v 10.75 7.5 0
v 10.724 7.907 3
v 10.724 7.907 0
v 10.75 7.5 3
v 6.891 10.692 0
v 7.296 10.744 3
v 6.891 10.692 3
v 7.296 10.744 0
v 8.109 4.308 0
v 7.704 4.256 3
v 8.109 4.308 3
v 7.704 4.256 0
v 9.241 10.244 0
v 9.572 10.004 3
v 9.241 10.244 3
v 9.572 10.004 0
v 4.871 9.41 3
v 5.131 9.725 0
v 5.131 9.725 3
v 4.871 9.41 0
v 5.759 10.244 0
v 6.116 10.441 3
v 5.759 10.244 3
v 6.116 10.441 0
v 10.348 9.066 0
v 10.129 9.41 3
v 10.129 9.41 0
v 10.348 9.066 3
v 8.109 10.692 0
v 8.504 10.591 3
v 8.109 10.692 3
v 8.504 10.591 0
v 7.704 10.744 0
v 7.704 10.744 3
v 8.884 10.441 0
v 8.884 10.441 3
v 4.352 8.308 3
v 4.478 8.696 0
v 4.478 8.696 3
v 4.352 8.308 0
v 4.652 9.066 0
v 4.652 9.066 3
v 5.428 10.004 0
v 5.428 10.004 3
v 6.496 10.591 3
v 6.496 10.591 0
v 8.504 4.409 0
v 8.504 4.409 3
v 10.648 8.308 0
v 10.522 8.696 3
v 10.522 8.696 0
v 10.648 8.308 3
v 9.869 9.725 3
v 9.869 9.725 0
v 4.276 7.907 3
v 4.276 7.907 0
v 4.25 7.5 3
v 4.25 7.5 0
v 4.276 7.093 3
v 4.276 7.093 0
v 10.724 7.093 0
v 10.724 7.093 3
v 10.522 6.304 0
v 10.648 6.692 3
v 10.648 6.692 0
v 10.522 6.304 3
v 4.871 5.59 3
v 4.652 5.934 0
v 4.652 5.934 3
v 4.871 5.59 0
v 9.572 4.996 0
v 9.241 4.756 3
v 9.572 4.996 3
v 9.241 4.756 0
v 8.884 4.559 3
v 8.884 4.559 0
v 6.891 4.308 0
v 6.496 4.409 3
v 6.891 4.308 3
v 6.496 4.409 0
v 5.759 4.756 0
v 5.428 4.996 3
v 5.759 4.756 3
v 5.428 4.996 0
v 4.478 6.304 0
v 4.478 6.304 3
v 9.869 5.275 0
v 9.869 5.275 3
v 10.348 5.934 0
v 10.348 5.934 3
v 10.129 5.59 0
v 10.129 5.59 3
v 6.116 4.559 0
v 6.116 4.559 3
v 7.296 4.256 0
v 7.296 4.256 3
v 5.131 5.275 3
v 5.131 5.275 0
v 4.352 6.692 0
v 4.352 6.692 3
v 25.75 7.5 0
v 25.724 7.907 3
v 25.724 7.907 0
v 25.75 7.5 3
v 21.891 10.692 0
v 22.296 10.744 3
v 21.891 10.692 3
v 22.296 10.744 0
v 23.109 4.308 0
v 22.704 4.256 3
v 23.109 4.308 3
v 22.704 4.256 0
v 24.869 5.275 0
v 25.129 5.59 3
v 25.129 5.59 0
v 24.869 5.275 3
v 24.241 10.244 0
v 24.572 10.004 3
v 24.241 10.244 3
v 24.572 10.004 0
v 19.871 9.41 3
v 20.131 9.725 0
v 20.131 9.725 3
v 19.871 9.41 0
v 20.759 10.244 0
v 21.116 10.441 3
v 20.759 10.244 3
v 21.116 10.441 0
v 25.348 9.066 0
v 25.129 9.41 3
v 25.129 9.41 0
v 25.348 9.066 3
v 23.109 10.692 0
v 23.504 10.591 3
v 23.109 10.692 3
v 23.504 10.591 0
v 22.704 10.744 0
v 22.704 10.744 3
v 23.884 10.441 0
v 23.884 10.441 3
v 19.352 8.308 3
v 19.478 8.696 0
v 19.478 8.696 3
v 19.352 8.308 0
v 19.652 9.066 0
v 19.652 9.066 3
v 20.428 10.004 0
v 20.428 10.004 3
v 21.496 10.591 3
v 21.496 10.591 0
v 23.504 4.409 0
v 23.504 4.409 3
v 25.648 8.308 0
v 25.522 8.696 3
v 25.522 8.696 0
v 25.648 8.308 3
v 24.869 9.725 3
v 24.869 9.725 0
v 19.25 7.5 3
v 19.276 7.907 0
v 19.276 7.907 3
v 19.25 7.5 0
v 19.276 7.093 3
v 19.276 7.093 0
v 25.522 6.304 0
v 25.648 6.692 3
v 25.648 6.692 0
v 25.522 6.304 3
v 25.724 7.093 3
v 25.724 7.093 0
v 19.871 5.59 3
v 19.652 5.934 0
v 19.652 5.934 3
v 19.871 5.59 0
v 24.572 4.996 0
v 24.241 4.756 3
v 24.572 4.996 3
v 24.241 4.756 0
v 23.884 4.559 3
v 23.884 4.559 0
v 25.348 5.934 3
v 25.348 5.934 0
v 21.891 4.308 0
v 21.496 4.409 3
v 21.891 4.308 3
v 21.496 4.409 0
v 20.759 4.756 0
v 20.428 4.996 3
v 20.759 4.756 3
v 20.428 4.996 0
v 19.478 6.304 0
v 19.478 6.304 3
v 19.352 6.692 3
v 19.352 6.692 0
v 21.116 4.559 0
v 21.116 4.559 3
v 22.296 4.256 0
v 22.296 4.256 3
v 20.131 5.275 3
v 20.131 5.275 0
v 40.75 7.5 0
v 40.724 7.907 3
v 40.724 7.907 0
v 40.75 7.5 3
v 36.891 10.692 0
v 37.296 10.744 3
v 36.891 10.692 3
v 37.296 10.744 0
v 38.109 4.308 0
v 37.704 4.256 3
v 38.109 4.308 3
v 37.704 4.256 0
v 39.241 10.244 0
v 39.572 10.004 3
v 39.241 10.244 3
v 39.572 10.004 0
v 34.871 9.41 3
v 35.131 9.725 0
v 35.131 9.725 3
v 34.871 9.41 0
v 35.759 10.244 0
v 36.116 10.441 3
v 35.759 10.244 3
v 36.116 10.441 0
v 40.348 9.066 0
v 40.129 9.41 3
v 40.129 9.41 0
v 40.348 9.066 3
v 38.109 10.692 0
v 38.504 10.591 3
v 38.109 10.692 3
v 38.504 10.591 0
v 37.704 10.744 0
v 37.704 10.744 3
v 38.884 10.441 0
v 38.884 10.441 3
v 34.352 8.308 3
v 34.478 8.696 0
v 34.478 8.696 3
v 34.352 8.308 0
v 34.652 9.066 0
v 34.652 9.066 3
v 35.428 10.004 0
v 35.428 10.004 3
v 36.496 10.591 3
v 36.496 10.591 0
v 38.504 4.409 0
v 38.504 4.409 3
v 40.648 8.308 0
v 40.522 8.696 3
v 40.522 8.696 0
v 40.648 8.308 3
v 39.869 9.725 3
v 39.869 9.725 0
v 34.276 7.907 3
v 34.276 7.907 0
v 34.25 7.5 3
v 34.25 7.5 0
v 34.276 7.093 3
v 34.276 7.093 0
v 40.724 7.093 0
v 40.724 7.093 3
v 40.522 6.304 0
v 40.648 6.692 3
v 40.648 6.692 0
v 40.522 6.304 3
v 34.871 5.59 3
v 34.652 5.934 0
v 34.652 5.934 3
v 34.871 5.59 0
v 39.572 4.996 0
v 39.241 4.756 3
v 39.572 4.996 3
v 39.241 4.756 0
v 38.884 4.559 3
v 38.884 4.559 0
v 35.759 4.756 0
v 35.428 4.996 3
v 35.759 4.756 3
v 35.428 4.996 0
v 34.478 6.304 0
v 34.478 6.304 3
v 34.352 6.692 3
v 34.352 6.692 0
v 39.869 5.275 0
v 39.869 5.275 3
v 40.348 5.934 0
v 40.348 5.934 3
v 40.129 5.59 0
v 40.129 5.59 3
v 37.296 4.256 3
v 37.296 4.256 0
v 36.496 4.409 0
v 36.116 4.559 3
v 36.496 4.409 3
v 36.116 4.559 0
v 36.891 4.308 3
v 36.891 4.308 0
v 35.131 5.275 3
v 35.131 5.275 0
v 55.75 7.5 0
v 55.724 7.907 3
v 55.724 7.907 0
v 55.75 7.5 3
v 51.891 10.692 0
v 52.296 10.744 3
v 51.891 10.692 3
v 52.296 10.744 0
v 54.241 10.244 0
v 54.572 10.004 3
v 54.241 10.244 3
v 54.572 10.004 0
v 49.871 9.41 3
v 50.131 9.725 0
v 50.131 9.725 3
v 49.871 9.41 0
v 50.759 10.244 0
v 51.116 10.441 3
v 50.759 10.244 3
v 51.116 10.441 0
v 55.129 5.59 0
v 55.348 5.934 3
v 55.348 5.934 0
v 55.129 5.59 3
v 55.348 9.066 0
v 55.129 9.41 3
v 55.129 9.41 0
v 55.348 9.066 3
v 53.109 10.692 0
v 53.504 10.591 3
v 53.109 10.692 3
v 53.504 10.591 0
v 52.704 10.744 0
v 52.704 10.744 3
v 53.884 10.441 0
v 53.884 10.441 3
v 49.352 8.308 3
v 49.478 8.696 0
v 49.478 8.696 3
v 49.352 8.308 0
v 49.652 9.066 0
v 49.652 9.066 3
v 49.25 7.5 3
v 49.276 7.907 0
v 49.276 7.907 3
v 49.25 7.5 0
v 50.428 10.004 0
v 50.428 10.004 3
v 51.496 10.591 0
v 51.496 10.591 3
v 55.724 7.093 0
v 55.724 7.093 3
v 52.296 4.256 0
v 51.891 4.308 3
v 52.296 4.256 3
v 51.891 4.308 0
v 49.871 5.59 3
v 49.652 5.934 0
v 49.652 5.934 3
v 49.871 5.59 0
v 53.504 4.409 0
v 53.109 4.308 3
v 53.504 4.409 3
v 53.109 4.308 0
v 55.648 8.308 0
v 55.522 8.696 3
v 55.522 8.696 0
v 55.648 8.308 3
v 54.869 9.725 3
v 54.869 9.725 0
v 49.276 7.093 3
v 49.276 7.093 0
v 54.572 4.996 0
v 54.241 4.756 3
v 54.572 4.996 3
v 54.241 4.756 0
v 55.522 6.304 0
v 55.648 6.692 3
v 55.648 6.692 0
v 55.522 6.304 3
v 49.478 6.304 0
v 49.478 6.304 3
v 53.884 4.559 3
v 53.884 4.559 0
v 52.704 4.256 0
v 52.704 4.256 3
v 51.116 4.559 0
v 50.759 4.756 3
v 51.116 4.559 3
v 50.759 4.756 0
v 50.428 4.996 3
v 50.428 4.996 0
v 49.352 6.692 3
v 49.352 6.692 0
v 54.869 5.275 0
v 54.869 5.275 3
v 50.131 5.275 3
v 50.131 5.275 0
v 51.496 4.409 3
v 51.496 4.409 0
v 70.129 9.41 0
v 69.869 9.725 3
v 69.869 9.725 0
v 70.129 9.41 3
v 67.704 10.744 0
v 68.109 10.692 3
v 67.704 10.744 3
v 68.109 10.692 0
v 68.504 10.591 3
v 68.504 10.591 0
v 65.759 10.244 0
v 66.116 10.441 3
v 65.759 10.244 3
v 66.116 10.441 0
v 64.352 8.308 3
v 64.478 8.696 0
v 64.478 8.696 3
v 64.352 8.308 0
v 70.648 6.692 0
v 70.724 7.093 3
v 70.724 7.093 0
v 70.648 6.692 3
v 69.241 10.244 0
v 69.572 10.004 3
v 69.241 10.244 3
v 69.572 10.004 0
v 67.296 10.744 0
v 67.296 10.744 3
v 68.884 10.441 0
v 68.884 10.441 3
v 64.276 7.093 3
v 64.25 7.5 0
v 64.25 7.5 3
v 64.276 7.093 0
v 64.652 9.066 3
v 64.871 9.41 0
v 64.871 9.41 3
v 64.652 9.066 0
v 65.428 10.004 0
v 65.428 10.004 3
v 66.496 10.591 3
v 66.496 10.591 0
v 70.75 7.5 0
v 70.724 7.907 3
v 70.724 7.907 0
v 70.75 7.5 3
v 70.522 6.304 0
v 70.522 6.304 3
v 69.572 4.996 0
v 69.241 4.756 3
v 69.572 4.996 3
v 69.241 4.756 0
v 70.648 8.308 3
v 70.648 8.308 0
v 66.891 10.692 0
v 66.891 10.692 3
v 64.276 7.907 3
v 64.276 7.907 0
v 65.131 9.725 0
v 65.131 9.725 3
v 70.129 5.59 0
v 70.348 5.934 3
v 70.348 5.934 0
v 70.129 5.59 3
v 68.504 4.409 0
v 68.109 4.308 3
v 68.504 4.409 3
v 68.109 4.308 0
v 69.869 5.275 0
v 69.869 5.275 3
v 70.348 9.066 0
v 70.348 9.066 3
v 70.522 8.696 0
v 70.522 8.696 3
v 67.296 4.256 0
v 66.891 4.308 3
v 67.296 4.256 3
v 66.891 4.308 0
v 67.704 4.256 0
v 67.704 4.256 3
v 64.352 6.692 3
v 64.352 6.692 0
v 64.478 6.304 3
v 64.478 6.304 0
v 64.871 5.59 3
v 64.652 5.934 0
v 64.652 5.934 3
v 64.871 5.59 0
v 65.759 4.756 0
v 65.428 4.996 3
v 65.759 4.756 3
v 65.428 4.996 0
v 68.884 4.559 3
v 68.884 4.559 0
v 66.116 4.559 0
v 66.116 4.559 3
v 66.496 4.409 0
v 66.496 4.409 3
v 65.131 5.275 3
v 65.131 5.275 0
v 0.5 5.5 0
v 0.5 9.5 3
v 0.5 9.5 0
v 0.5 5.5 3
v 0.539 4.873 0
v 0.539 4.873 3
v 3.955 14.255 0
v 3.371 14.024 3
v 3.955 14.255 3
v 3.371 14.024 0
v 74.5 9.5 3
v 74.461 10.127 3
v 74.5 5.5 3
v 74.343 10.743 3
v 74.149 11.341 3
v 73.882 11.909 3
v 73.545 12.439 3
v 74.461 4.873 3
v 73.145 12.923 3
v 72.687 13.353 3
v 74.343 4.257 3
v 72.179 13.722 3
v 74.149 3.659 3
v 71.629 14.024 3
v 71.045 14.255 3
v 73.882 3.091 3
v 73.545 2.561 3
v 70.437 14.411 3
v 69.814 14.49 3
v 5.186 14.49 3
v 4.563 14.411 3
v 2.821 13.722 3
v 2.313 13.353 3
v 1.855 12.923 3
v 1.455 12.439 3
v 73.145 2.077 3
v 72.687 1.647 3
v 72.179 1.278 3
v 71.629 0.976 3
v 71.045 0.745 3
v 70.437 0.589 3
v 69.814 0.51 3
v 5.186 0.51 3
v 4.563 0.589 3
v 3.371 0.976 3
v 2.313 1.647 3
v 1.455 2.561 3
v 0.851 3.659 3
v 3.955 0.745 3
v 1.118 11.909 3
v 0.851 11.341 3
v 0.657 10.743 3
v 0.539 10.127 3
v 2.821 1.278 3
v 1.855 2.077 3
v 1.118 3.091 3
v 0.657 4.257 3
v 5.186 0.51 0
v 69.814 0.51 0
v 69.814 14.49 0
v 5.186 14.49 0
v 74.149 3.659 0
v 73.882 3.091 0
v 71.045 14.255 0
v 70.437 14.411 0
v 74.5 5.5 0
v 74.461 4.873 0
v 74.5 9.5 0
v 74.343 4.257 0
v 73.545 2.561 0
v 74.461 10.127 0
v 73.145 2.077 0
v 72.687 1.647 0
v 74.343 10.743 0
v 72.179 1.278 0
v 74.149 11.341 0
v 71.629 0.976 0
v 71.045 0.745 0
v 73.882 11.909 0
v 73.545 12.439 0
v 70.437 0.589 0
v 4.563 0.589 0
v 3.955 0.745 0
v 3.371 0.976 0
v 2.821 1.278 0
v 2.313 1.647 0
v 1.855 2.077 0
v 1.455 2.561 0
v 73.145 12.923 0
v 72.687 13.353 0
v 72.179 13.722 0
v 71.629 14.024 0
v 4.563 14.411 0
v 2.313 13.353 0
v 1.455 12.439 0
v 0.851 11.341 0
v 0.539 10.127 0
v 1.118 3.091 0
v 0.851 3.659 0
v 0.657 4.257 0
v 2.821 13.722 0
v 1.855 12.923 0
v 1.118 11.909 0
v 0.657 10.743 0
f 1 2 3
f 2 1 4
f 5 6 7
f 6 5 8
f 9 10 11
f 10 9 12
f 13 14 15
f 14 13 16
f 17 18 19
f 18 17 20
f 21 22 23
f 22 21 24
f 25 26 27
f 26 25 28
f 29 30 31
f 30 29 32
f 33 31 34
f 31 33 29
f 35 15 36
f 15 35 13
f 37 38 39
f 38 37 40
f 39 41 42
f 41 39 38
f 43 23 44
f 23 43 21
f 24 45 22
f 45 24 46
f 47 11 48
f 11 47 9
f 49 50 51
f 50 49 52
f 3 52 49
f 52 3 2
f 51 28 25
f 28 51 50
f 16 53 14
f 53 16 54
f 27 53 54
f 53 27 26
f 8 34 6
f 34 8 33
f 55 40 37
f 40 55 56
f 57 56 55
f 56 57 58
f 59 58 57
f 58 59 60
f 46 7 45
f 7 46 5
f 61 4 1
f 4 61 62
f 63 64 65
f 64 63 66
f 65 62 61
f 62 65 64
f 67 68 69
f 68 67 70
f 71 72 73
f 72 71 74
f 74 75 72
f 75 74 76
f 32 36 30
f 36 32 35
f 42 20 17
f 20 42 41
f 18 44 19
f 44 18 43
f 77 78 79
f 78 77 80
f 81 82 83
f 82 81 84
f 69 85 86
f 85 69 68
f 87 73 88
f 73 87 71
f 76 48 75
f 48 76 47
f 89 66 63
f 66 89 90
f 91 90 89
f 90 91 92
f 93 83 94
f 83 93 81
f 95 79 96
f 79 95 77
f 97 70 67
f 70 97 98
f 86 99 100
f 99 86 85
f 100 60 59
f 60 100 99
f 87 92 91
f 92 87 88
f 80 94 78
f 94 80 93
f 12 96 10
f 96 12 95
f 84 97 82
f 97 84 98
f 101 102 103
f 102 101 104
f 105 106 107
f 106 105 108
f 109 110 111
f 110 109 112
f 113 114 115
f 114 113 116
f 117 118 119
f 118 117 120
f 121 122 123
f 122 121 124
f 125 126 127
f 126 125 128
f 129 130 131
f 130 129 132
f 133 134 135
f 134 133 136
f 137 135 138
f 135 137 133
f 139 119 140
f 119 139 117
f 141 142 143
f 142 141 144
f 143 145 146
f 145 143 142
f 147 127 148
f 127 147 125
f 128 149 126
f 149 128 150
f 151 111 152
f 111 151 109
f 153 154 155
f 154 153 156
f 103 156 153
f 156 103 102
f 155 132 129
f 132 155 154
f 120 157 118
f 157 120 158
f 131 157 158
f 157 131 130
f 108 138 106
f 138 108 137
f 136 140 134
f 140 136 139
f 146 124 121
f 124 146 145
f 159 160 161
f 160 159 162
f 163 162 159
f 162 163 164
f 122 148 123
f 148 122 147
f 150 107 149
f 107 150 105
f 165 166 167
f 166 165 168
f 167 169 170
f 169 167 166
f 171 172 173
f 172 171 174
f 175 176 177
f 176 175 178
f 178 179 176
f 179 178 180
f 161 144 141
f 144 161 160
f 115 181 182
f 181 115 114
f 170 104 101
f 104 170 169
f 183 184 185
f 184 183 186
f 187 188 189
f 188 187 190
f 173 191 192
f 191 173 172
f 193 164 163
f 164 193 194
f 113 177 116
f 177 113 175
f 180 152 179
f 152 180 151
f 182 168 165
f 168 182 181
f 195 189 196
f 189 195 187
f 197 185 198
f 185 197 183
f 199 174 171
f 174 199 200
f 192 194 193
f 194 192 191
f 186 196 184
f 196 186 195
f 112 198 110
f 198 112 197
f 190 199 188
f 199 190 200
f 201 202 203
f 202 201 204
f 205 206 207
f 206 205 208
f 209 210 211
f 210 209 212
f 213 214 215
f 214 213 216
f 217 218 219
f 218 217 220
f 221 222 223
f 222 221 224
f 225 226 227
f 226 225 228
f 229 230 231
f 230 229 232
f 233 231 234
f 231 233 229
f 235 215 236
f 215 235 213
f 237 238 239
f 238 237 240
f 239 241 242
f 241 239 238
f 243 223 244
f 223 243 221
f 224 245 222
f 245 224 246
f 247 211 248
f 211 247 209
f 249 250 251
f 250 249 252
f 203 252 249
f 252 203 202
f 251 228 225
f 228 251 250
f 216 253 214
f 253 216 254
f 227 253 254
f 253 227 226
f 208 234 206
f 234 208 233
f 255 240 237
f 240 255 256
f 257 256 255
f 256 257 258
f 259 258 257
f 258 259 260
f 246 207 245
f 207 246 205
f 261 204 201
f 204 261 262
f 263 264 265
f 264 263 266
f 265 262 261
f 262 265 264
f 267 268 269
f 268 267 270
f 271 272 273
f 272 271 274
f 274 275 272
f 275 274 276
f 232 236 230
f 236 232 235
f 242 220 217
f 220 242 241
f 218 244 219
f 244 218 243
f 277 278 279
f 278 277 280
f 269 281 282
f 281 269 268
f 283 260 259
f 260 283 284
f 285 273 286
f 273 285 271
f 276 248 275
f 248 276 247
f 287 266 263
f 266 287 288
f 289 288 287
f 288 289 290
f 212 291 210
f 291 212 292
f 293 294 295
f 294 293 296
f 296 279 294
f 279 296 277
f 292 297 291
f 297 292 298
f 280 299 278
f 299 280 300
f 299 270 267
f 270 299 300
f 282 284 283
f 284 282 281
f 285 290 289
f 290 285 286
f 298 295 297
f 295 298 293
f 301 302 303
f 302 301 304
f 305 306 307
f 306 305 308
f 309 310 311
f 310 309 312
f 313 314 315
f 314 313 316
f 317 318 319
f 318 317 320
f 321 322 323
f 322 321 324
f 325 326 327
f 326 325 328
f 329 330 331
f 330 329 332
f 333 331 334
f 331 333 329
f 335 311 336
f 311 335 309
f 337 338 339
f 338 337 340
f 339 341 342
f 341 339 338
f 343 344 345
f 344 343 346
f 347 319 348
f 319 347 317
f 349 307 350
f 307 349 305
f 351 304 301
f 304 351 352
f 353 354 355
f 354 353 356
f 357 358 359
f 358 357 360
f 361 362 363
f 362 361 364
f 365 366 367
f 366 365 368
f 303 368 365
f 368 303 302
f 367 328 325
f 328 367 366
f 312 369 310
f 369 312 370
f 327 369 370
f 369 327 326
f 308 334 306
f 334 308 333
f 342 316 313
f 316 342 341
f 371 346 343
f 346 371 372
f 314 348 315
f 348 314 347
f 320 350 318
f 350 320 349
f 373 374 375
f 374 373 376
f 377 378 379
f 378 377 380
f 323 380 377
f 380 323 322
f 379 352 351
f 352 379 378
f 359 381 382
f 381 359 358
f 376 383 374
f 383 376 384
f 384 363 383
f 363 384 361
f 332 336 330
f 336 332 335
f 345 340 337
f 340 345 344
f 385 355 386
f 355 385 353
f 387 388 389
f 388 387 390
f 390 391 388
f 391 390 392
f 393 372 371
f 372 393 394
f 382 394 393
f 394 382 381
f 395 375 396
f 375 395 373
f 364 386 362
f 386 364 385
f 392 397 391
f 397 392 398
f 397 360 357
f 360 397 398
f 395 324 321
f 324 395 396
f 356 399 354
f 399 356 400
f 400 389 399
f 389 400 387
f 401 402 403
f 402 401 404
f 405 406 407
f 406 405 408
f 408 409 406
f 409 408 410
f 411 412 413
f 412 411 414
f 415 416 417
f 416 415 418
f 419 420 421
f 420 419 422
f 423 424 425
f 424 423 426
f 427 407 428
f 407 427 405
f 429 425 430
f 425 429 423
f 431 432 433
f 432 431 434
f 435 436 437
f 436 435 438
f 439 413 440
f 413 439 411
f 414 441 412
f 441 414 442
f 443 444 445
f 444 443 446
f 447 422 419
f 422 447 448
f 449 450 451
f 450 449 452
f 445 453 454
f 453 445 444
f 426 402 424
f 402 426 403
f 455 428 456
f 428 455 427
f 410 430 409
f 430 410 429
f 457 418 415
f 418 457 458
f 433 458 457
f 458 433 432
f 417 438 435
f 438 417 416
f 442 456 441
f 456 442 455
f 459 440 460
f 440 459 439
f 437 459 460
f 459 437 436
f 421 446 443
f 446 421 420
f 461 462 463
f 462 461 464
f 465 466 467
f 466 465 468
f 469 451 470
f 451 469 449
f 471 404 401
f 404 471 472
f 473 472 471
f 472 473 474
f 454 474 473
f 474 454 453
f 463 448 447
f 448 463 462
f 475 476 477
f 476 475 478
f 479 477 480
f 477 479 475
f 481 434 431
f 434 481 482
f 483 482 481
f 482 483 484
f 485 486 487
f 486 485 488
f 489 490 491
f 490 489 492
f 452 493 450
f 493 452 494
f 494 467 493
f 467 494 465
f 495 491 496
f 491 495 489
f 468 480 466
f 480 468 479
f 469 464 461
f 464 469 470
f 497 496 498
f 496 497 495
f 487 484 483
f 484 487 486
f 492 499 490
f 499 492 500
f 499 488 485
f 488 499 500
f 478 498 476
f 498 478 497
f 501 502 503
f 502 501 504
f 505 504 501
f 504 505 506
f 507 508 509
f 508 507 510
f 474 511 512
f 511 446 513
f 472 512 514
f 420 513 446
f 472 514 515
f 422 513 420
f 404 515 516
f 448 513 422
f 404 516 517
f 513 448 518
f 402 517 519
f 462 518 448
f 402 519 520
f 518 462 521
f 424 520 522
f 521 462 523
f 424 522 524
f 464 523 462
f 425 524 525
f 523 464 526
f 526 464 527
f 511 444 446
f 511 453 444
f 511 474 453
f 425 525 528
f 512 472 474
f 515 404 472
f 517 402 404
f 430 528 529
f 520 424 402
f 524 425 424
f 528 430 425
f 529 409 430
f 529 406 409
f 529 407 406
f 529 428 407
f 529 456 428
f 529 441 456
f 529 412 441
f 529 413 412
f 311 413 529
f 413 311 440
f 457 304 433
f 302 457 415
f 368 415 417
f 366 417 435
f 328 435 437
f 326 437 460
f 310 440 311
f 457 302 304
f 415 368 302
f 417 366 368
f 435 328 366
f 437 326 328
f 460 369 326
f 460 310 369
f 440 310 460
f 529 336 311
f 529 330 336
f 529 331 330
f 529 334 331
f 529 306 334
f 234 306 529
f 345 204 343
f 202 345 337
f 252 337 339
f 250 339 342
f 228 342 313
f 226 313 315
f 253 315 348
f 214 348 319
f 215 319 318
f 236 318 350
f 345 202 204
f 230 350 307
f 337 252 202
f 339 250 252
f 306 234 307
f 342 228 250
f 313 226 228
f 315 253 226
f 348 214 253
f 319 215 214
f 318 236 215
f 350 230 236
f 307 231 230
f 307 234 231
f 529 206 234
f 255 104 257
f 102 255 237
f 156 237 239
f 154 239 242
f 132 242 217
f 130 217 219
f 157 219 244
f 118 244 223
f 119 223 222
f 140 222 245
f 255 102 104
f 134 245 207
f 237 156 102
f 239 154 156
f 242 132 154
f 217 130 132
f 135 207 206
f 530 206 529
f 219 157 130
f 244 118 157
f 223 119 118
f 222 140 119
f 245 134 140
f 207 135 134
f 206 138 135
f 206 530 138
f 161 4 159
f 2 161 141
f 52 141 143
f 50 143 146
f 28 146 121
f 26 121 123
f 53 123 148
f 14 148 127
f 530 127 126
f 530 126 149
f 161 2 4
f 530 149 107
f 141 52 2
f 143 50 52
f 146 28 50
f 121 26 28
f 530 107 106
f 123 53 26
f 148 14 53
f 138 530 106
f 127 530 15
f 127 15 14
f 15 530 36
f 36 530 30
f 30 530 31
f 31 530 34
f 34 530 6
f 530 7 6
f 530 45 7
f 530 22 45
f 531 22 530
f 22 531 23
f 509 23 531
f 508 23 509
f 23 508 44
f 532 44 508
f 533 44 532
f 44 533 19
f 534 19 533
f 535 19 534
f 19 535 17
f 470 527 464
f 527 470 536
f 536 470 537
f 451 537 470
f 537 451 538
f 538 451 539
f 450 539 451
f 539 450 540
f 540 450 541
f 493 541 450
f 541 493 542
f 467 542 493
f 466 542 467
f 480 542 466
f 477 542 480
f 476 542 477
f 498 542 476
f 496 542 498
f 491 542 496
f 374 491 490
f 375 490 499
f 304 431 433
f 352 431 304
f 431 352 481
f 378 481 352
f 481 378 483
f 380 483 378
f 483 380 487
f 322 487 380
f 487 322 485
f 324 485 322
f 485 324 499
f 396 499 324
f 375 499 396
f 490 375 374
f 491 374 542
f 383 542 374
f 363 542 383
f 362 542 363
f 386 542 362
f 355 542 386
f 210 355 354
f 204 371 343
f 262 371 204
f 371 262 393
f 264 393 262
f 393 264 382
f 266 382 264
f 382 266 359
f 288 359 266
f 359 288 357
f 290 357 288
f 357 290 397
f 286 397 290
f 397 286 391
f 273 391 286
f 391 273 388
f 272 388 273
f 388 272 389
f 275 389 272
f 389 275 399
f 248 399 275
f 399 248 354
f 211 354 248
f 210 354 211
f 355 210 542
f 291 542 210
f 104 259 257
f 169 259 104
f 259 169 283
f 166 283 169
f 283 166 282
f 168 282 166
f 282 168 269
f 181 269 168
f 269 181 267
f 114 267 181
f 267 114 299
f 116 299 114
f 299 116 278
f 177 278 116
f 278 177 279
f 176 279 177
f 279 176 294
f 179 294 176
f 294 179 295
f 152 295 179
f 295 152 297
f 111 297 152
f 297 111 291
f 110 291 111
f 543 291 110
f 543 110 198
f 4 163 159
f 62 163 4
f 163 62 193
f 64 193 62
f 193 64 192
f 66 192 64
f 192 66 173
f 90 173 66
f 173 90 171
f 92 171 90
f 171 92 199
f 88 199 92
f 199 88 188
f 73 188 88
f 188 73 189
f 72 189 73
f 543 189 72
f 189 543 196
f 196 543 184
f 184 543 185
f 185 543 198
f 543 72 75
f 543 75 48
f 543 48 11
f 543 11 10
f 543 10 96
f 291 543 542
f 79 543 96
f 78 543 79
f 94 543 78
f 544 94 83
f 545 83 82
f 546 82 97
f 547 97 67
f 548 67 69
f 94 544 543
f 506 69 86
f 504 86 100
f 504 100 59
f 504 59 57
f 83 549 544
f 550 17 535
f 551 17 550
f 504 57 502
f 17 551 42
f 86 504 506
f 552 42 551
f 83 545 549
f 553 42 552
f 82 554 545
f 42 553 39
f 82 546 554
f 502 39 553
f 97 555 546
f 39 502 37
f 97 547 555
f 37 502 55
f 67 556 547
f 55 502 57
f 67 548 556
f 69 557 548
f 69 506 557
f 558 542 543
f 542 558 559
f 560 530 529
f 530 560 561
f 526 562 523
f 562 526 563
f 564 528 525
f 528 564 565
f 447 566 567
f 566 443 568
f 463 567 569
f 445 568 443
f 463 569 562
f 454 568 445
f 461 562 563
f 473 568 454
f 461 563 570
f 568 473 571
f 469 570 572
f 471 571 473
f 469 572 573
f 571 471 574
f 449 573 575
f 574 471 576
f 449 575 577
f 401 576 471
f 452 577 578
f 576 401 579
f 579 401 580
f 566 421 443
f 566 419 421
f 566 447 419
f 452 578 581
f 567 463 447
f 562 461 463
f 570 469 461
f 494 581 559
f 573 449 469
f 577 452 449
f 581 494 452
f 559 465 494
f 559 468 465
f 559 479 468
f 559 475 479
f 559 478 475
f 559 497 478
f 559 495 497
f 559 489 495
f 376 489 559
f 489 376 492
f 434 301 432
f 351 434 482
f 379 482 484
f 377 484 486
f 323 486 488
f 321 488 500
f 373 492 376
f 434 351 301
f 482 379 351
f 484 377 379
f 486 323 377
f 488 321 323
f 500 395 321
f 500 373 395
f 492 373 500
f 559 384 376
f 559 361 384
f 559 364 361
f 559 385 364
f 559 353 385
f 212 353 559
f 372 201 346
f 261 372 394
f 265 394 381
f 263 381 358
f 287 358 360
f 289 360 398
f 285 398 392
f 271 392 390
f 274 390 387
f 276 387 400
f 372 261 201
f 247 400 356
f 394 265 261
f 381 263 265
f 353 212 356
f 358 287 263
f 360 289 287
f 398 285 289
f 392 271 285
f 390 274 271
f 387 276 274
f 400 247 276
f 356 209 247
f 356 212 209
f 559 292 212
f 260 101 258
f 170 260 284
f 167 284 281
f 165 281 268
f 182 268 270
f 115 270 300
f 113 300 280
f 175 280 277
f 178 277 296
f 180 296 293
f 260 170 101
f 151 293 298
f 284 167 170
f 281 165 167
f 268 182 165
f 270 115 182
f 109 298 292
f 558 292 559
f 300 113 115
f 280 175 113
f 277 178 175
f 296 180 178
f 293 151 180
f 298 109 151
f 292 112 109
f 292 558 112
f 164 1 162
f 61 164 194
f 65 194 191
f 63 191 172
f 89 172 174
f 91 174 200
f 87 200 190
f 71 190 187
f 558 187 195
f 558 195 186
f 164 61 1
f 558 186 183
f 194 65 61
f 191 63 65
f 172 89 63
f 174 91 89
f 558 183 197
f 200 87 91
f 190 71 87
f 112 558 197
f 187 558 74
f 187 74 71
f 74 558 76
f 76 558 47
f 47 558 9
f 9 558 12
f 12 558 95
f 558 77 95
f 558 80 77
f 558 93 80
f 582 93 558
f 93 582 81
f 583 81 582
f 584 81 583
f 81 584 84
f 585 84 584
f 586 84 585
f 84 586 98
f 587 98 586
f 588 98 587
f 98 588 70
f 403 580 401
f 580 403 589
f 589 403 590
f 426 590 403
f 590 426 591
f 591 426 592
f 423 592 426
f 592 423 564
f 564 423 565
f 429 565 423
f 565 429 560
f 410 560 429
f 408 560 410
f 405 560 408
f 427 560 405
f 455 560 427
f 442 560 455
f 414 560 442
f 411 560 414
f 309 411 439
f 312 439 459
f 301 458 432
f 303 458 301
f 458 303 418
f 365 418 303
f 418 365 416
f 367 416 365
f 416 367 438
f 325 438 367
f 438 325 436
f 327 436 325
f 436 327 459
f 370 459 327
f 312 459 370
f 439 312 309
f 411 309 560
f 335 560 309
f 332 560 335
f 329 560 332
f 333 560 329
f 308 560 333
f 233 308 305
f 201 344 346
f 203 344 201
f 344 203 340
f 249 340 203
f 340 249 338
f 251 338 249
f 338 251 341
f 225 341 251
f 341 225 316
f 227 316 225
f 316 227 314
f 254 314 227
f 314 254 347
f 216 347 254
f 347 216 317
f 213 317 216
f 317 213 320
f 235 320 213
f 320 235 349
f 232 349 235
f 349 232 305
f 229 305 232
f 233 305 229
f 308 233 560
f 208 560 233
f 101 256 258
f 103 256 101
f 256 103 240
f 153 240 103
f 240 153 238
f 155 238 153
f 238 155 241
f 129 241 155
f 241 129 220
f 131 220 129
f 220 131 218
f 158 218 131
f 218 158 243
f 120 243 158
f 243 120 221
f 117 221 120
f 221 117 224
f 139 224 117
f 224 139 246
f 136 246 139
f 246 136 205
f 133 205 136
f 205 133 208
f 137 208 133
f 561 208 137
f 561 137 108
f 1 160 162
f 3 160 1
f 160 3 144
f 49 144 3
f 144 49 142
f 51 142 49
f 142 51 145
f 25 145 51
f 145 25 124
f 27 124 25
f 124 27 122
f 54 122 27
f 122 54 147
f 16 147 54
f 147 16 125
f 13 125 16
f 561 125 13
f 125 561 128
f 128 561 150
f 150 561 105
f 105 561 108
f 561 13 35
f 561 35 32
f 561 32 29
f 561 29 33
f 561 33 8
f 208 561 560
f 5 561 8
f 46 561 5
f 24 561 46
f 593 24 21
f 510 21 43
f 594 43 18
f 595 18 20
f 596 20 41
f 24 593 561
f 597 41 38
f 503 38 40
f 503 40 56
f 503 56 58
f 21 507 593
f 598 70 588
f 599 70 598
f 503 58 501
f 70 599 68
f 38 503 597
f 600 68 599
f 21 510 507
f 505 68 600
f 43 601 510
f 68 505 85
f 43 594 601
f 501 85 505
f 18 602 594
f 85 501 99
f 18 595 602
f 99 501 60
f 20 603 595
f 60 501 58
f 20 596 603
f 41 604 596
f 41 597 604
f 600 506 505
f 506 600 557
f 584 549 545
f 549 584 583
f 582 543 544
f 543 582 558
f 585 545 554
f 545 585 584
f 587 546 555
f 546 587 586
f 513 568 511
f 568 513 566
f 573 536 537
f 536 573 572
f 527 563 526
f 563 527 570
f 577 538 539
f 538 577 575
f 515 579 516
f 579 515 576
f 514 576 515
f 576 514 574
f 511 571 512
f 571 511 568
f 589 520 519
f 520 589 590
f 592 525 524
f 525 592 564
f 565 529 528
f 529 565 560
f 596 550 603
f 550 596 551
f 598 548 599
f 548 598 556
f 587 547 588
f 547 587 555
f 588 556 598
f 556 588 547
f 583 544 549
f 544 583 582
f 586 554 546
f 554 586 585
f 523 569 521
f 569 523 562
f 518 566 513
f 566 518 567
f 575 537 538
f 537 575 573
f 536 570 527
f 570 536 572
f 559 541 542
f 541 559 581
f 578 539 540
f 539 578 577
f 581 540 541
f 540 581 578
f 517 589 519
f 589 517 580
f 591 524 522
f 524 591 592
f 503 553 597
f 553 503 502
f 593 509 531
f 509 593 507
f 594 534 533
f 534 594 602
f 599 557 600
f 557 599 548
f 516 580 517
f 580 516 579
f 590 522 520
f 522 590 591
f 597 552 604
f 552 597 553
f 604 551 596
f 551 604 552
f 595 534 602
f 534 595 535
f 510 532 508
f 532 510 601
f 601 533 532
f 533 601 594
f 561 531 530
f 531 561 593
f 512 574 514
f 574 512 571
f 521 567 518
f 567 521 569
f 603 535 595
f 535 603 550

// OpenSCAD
// Generated by SolidPython 1.1.3 on 2023-01-09 15:00:51
$fn = 50;


difference() {
	union() {
		translate(v = [37.5000000000, 7.5000000000, 0]) {
			rotate(a = [0, 0, 0]) {
				hull() {
					translate(v = [-32.0000000000, 2.0000000000, 0]) {
						rotate(a = [0, 0, 0]) {
							translate(v = [0, 0, 0]) {
								rotate(a = [0, 0, 0]) {
									cylinder(h = 3, r = 5);
								}
							}
						}
					}
					translate(v = [32.0000000000, 2.0000000000, 0]) {
						rotate(a = [0, 0, 0]) {
							translate(v = [0, 0, 0]) {
								rotate(a = [0, 0, 0]) {
									cylinder(h = 3, r = 5);
								}
							}
						}
					}
					translate(v = [-32.0000000000, -2.0000000000, 0]) {
						rotate(a = [0, 0, 0]) {
							translate(v = [0, 0, 0]) {
								rotate(a = [0, 0, 0]) {
									cylinder(h = 3, r = 5);
								}
							}
						}
					}
					translate(v = [32.0000000000, -2.0000000000, 0]) {
						rotate(a = [0, 0, 0]) {
							translate(v = [0, 0, 0]) {
								rotate(a = [0, 0, 0]) {
									cylinder(h = 3, r = 5);
								}
							}
						}
					}
				}
			}
		}
	}
	union() {
		translate(v = [7.5000000000, 7.5000000000, 0]) {
			rotate(a = [0, 0, 0]) {
				translate(v = [0, 0, -50]) {
					rotate(a = [0, 0, 0]) {
						cylinder(h = 100, r = 3.2500000000);
					}
				}
			}
		}
		translate(v = [22.5000000000, 7.5000000000, 0]) {
			rotate(a = [0, 0, 0]) {
				translate(v = [0, 0, -50]) {
					rotate(a = [0, 0, 0]) {
						cylinder(h = 100, r = 3.2500000000);
					}
				}
			}
		}
		translate(v = [37.5000000000, 7.5000000000, 0]) {
			rotate(a = [0, 0, 0]) {
				translate(v = [0, 0, -50]) {
					rotate(a = [0, 0, 0]) {
						cylinder(h = 100, r = 3.2500000000);
					}
				}
			}
		}
		translate(v = [52.5000000000, 7.5000000000, 0]) {
			rotate(a = [0, 0, 0]) {
				translate(v = [0, 0, -50]) {
					rotate(a = [0, 0, 0]) {
						cylinder(h = 100, r = 3.2500000000);
					}
				}
			}
		}
		translate(v = [67.5000000000, 7.5000000000, 0]) {
			rotate(a = [0, 0, 0]) {
				translate(v = [0, 0, -50]) {
					rotate(a = [0, 0, 0]) {
						cylinder(h = 100, r = 3.2500000000);
					}
				}
			}
		}
	}
}
/***********************************************
*********      SolidPython code:      **********
************************************************
 
from solid import *
import os
import subprocess

import oomB

import opsc_library_gen

mode = "laser"
#mode = "3d_print"

defined_objects = {}

radius_dict = {}
countersunk_dict = {}


def set_mode(m):
    global mode
    mode = m
    radius_dict['M6'] = 6.5/2
    radius_dict['M3'] = 3.3/2
    if mode == "laser":
        radius_dict['M6'] = 6/2
        radius_dict['M3'] = 3/2

    countersunk_dict['M3'] = {}
    countersunk_dict['M3']['little_rad'] = radius_dict['M3']
    countersunk_dict['M3']['big_rad'] = (5.5+0.6)/2
    if mode == "laser":
        countersunk_dict['M3']['big_rad'] = (4.75+0.6)/2
        countersunk_dict['M3']['little_rad'] = (4.75+0.6)/2

    countersunk_dict['M3']['height'] = 1.7


def opsc_make_object(filename, objects, save_type="none",resolution=50, layers = 1, tilediff = 200, mode="laser"):
    set_mode(mode)
    save_type = save_type.lower()
    os.makedirs(os.path.dirname(filename), exist_ok=True)
    final_object = opsc_get_object(objects)
    # Save the final object to the specified filename    
    scad_render_to_file(final_object, filename, file_header='$fn = %s;' % resolution, include_orig_code=True)
    if mode == "laser":
        filename_laser = filename.replace(".scad","-flat.scad")
        scad_render_to_file(getLaser(final_object, layers=layers, tilediff=tilediff), filename_laser, file_header='$fn = %s;' % resolution, include_orig_code=True)
        if save_type == "all":
            saveToAll(filename_laser)
        elif save_type == "dxf":
            saveToDxf(filename_laser)
    if save_type == "all":
        saveToAll(filename)
    elif save_type == "dxf":
        saveToDxf(filename)


def opsc_get_object(objects):
    # Create the solidpython objects
    positive_objects = [get_opsc_item(obj) for obj in objects if obj['type'] == 'positive']
    negative_objects = [get_opsc_item(obj) for obj in objects if obj['type'] == 'negative']
    # Union the positive objects
    positive_object = union()(*positive_objects)
    # Union the negative objects
    negative_object = union()(*negative_objects)
    # Create the final object by subtracting the negative objects from the positive objects
    return difference()(positive_object, negative_object)

def get_opsc_item(params):
    # A dictionary to map radius string values to numerical values
    #radius_dict = {'small': 5, 'medium': 10, 'large': 15}
    # An array of function names for basic shapes
    basic_shapes = ['cube', 'sphere', 'cylinder']
    
    # An array of function names for other shapes
    other_shapes = ['hole', 'slot', 'rounded_rectangle', 'countersunk']
    


    # Convert radius to r if present, and remove radius from the params dictionary
    if 'radius' in params:
        if isinstance(params['radius'], str):
            # Use the radius_dict to map the radius string value to a numerical value
            params['r'] = radius_dict[params['radius']]
        else:
            params['r'] = params['radius']
        del params['radius']
    

    # Check if the object type is a basic shape
    if params['shape'] in basic_shapes:
        # Remove shape and unexpected dictionary values
        allowed_keys = {'size', 'r', 'r1', 'r2', 'd', 'h', 'rw', 'rh', 'dw', 'dh'}
        shape_params = {k: v for k, v in params.items() if k in allowed_keys}

        # Call the corresponding function for the shape parameter, using ** notation to pass the shape_params dictionary as keyword arguments
        return get_opsc_transform(params,globals()[params['shape']](**shape_params))
    
    # If the object type is not a basic shape, check if it's a defined object or one of the other shapes
    elif params['shape'] in other_shapes:
        # Call the corresponding function for the shape parameter, passing the params dictionary as an argument
        p2 = copy.deepcopy(params)
        p2["pos"] = [0,0,0]
        return get_opsc_transform(params,globals()[params['shape']](p2))
    
    # If the object is not a basic shape or a defined object, try to import it from a .scad file
    else:
        obj = defined_objects[params['shape']]
        return get_opsc_transform(params,obj)

def get_opsc_transform(params, solid_obj):
    # Rotate the object based on the 'rot' field in the params dictionary, or the 'rotX', 'rotY', and 'rotZ' fields if 'rot' is not present
    rot = params.get('rot', [])
    if rot:
        rotX, rotY, rotZ = rot
    else:
        rotX = params.get('rotX', 0)
        rotY = params.get('rotY', 0)
        rotZ = params.get('rotZ', 0)
    solid_obj = rotate([rotX, rotY, rotZ])(solid_obj)

    # Translate the object based on the 'pos' field in the params dictionary, or the 'x', 'y', and 'z' fields if 'pos' is not present
    pos = params.get('pos', [])
    if pos:
        x, y, z = pos
    else:
        x = params.get('x', 0)
        y = params.get('y', 0)
        z = params.get('z', 0)
    solid_obj = translate([x, y, z])(solid_obj)
    return solid_obj


import random

def opsc_easy_array(type, shape, repeats, pos_start, shift_arr, **kwargs):
    for i in range(0,3):
        repeats.append(1)
        pos_start.append(0)
        shift_arr.append(0)
    return_objects = []

    for x in range(0,repeats[0]):
        for y in range(0,repeats[1]):
            for z in range(0,repeats[2]):
                return_objects.append(opsc_easy(type, shape, pos=[pos_start[0]+x*shift_arr[0],pos_start[1]+y*shift_arr[1],pos_start[2]+z*shift_arr[2]], **kwargs))
    return return_objects                



def opsc_easy(type, shape, **kwargs):
    obj = {
        'type': type,
        'shape': shape
    }
    for param in ['size', 'r', 'r1', 'r2', 'd', 'h', 'rw', 'rh', 'dw', 'dh', 'pos', 'x', 'y', 'z', 'rot', 'rotX', 'rotY', 'rotZ', "w"]:
        if param in kwargs:
            obj[param] = kwargs[param]
    return obj

def hole(params):
    p2 = copy.deepcopy(params)  
    # Check if the radius is a string and replace it with the corresponding value from the dictionary
    if isinstance(p2['r'], str):
        p2['r'] = radius_dict[p2['r']]
    
    # Set the height to 100 if not specified
    if 'h' not in p2:
        p2['h'] = 100
        p2["pos"] = [0,0,-50]
    p2["center"] = True
    # Create the cylinder object
    p2["shape"] = "cylinder"
    p2["type"] = "positive"

    return get_opsc_item(p2)

import copy

def countersunk(params):
    p2 = copy.deepcopy(params)
    counter_rad = p2['r']
    p2['r'] = radius_dict[p2['r']]
    hp = copy.deepcopy(p2)
    hp["type"] = "positive"
    hp["shape"] = "hole"
    del hp["rot"]
    hol = get_opsc_item(hp)
    
    cp = copy.deepcopy(p2)
    cp["h"] = countersunk_dict[counter_rad]["height"]
    cp["r2"] = countersunk_dict[counter_rad]["little_rad"]
    cp["r1"] = countersunk_dict[counter_rad]["big_rad"]
    del cp["r"]
    del cp["rot"]
    cp["type"] = "positive"
    cp["shape"] = "cylinder"
    cp["pos"] = [0,0,0]

    top = get_opsc_item(cp)
    return union()(hol,top)



def slot(params):  
    p2 = copy.deepcopy(params) 
    if isinstance(p2['r'], str):
        p2['r'] = radius_dict[p2['r']]
    p2["type"] = "positive"
    p2["shape"] = "hole"
    del p2["rot"]
    p2["pos"] = [0,0,0]
    left = copy.deepcopy(p2)
    right = copy.deepcopy(p2)
    left["pos"][0] = p2["w"] / 2 - p2["r"] 
    
    right["pos"][0] = -p2["w"] / 2 + p2["r"] 
    pass
    leftObj = get_opsc_item(left)
    rightObj = get_opsc_item(right)
    return hull()(leftObj, rightObj)

def rounded_rectangle(params):   
    p2 = copy.deepcopy(params) 
    p2["h"] = p2["size"][2]
    p2["pos"] = p2.get("pos", [0, 0, 0]) 
    p2["type"] = "positive"
    p2["shape"] = "hole"
    p2["pos"] = [0,0,0]
    
    if 'rot' in p2:
        del p2["rot"]   
    if 'r' not in p2:
        p2["r"] = 5 
    tl = copy.deepcopy(p2)
    tr = copy.deepcopy(p2)
    bl = copy.deepcopy(p2)
    br = copy.deepcopy(p2)
    tl["pos"][0] = -(p2["size"][0] - p2["r"]*2)/2
    tl["pos"][1] = (p2["size"][1] - p2["r"]*2)/2
    tr["pos"][0] = (p2["size"][0] - p2["r"]*2)/2
    tr["pos"][1] = (p2["size"][1] - p2["r"]*2)/2
    bl["pos"][0] = -(p2["size"][0] - p2["r"]*2)/2
    bl["pos"][1] = -(p2["size"][1] - p2["r"]*2)/2
    br["pos"][0] = (p2["size"][0] - p2["r"]*2)/2
    br["pos"][1] = -(p2["size"][1] - p2["r"]*2)/2
    del tl["size"]
    del tr["size"]
    del bl["size"]
    del br["size"]
    tlo = get_opsc_item(tl)
    tro = get_opsc_item(tr)
    blo = get_opsc_item(bl)
    bro = get_opsc_item(br)    
    return hull()(tlo, tro, blo, bro)



def import_scad_object(filename):
    # Import the .scad file and convert it to a solidpython object
    #filename = "parts"
    obj = import_scad(filename)
    return obj.main()
    


import os
import solid as solidpython

# A dictionary to store the defined objects


def load_scad_objects():
    opsc_library_gen.gen_library(defined_objects)

import random

def test(num_objects):
    objects = []
    for i in range(num_objects):
        # Choose a random shape
        #shape = random.choice(['cube', 'sphere', 'cylinder', 'hole', 'slot', "rounded_rectangle"])
        shape = random.choice(["rounded_rectangle"])

        # Choose a random type
        type = random.choice(['positive', 'negative'])
        
        # Create an empty object dictionary
        obj = {'shape': shape, 'type': type}
        
        # Set shape-specific parameters
        if obj['shape'] in ['cube']:
            obj['size'] =  [random.uniform(5, 15), random.uniform(5, 15), random.uniform(5, 15)]
        if obj['shape'] in ['rounded_rectangle']:
            obj['size'] =  [random.uniform(5, 15), random.uniform(5, 15), random.uniform(5, 15)]
            obj['r'] = random.uniform(0.5, 5)
        elif obj['shape'] == 'sphere':
            obj['r'] = random.uniform(5, 15)
        elif obj['shape'] in ['cylinder', 'hole']:
            obj['r'] = random.uniform(0.5, 5)
            obj['h'] = random.uniform(5, 15)
        elif obj['shape'] == 'slot':
            obj['r'] = random.uniform(0.5, 5)
            obj['h'] = random.uniform(5, 15)
            obj['w'] = random.uniform(5, 15)
        
        # Set a random position and rotation
        obj['pos'] = [random.uniform(-20, 20), random.uniform(-20, 20), random.uniform(-20, 20)]
        obj['rot'] = [random.uniform(-180, 180), random.uniform(-180, 180), random.uniform(-180, 180)]
        
        # Add the object to the list
        objects.append(obj)
    return objects

####### old file saving
def saveToAll(fileIn):
    saveToDxf(fileIn)
    saveToPng(fileIn)
    saveToStl(fileIn)
    saveToSvg(fileIn)

def saveToDxf(fileIn, fileOut="", copy_to_laser=True):
    if fileOut == "":
        fileOut = fileIn.replace(".scad",".dxf")
    saveToFile(fileIn, fileOut)


    
def saveToPng(fileIn, fileOut="",extra="--render"):
    if fileOut == "":
        fileOut = fileIn.replace(".scad",".png")
    saveToFile(fileIn, fileOut)

def saveToStl(fileIn, fileOut=""):
    if fileOut == "":
        fileOut = fileIn.replace(".scad",".stl")
    saveToFile(fileIn, fileOut)
    
def saveToSvg(fileIn, fileOut=""):
    if fileOut == "":
        fileOut = fileIn.replace(".scad",".svg")
    saveToFile(fileIn, fileOut)

def saveToFile(fileIn, fileOut,extra=""):
    #extra = extra + " --colorscheme Tomorrow"

    launchStr = 'openscad -o "' + fileOut + '"' + extra + ' "' + fileIn + '"'
    if ".png" in fileOut:
        launchStr = launchStr + " --render"
    print("            saveToFile launch string: " + launchStr)
    subprocess.run(launchStr)
    x=0

def getLaser(final_object,start=1.5,layers=1,thickness=3,tilediff=200):
        rv= []

        for x in range(layers):
            rv.append(translate([0,x*tilediff,0])(
                    projection()(
                        intersection()(translate([-500,-500,start+x*thickness])(cube(size=[1000,1000,0.1])),
                            final_object
                        )
                    )
            )
            )
            
        return union()(rv)

set_mode("laser")
load_scad_objects() 
 
************************************************/
